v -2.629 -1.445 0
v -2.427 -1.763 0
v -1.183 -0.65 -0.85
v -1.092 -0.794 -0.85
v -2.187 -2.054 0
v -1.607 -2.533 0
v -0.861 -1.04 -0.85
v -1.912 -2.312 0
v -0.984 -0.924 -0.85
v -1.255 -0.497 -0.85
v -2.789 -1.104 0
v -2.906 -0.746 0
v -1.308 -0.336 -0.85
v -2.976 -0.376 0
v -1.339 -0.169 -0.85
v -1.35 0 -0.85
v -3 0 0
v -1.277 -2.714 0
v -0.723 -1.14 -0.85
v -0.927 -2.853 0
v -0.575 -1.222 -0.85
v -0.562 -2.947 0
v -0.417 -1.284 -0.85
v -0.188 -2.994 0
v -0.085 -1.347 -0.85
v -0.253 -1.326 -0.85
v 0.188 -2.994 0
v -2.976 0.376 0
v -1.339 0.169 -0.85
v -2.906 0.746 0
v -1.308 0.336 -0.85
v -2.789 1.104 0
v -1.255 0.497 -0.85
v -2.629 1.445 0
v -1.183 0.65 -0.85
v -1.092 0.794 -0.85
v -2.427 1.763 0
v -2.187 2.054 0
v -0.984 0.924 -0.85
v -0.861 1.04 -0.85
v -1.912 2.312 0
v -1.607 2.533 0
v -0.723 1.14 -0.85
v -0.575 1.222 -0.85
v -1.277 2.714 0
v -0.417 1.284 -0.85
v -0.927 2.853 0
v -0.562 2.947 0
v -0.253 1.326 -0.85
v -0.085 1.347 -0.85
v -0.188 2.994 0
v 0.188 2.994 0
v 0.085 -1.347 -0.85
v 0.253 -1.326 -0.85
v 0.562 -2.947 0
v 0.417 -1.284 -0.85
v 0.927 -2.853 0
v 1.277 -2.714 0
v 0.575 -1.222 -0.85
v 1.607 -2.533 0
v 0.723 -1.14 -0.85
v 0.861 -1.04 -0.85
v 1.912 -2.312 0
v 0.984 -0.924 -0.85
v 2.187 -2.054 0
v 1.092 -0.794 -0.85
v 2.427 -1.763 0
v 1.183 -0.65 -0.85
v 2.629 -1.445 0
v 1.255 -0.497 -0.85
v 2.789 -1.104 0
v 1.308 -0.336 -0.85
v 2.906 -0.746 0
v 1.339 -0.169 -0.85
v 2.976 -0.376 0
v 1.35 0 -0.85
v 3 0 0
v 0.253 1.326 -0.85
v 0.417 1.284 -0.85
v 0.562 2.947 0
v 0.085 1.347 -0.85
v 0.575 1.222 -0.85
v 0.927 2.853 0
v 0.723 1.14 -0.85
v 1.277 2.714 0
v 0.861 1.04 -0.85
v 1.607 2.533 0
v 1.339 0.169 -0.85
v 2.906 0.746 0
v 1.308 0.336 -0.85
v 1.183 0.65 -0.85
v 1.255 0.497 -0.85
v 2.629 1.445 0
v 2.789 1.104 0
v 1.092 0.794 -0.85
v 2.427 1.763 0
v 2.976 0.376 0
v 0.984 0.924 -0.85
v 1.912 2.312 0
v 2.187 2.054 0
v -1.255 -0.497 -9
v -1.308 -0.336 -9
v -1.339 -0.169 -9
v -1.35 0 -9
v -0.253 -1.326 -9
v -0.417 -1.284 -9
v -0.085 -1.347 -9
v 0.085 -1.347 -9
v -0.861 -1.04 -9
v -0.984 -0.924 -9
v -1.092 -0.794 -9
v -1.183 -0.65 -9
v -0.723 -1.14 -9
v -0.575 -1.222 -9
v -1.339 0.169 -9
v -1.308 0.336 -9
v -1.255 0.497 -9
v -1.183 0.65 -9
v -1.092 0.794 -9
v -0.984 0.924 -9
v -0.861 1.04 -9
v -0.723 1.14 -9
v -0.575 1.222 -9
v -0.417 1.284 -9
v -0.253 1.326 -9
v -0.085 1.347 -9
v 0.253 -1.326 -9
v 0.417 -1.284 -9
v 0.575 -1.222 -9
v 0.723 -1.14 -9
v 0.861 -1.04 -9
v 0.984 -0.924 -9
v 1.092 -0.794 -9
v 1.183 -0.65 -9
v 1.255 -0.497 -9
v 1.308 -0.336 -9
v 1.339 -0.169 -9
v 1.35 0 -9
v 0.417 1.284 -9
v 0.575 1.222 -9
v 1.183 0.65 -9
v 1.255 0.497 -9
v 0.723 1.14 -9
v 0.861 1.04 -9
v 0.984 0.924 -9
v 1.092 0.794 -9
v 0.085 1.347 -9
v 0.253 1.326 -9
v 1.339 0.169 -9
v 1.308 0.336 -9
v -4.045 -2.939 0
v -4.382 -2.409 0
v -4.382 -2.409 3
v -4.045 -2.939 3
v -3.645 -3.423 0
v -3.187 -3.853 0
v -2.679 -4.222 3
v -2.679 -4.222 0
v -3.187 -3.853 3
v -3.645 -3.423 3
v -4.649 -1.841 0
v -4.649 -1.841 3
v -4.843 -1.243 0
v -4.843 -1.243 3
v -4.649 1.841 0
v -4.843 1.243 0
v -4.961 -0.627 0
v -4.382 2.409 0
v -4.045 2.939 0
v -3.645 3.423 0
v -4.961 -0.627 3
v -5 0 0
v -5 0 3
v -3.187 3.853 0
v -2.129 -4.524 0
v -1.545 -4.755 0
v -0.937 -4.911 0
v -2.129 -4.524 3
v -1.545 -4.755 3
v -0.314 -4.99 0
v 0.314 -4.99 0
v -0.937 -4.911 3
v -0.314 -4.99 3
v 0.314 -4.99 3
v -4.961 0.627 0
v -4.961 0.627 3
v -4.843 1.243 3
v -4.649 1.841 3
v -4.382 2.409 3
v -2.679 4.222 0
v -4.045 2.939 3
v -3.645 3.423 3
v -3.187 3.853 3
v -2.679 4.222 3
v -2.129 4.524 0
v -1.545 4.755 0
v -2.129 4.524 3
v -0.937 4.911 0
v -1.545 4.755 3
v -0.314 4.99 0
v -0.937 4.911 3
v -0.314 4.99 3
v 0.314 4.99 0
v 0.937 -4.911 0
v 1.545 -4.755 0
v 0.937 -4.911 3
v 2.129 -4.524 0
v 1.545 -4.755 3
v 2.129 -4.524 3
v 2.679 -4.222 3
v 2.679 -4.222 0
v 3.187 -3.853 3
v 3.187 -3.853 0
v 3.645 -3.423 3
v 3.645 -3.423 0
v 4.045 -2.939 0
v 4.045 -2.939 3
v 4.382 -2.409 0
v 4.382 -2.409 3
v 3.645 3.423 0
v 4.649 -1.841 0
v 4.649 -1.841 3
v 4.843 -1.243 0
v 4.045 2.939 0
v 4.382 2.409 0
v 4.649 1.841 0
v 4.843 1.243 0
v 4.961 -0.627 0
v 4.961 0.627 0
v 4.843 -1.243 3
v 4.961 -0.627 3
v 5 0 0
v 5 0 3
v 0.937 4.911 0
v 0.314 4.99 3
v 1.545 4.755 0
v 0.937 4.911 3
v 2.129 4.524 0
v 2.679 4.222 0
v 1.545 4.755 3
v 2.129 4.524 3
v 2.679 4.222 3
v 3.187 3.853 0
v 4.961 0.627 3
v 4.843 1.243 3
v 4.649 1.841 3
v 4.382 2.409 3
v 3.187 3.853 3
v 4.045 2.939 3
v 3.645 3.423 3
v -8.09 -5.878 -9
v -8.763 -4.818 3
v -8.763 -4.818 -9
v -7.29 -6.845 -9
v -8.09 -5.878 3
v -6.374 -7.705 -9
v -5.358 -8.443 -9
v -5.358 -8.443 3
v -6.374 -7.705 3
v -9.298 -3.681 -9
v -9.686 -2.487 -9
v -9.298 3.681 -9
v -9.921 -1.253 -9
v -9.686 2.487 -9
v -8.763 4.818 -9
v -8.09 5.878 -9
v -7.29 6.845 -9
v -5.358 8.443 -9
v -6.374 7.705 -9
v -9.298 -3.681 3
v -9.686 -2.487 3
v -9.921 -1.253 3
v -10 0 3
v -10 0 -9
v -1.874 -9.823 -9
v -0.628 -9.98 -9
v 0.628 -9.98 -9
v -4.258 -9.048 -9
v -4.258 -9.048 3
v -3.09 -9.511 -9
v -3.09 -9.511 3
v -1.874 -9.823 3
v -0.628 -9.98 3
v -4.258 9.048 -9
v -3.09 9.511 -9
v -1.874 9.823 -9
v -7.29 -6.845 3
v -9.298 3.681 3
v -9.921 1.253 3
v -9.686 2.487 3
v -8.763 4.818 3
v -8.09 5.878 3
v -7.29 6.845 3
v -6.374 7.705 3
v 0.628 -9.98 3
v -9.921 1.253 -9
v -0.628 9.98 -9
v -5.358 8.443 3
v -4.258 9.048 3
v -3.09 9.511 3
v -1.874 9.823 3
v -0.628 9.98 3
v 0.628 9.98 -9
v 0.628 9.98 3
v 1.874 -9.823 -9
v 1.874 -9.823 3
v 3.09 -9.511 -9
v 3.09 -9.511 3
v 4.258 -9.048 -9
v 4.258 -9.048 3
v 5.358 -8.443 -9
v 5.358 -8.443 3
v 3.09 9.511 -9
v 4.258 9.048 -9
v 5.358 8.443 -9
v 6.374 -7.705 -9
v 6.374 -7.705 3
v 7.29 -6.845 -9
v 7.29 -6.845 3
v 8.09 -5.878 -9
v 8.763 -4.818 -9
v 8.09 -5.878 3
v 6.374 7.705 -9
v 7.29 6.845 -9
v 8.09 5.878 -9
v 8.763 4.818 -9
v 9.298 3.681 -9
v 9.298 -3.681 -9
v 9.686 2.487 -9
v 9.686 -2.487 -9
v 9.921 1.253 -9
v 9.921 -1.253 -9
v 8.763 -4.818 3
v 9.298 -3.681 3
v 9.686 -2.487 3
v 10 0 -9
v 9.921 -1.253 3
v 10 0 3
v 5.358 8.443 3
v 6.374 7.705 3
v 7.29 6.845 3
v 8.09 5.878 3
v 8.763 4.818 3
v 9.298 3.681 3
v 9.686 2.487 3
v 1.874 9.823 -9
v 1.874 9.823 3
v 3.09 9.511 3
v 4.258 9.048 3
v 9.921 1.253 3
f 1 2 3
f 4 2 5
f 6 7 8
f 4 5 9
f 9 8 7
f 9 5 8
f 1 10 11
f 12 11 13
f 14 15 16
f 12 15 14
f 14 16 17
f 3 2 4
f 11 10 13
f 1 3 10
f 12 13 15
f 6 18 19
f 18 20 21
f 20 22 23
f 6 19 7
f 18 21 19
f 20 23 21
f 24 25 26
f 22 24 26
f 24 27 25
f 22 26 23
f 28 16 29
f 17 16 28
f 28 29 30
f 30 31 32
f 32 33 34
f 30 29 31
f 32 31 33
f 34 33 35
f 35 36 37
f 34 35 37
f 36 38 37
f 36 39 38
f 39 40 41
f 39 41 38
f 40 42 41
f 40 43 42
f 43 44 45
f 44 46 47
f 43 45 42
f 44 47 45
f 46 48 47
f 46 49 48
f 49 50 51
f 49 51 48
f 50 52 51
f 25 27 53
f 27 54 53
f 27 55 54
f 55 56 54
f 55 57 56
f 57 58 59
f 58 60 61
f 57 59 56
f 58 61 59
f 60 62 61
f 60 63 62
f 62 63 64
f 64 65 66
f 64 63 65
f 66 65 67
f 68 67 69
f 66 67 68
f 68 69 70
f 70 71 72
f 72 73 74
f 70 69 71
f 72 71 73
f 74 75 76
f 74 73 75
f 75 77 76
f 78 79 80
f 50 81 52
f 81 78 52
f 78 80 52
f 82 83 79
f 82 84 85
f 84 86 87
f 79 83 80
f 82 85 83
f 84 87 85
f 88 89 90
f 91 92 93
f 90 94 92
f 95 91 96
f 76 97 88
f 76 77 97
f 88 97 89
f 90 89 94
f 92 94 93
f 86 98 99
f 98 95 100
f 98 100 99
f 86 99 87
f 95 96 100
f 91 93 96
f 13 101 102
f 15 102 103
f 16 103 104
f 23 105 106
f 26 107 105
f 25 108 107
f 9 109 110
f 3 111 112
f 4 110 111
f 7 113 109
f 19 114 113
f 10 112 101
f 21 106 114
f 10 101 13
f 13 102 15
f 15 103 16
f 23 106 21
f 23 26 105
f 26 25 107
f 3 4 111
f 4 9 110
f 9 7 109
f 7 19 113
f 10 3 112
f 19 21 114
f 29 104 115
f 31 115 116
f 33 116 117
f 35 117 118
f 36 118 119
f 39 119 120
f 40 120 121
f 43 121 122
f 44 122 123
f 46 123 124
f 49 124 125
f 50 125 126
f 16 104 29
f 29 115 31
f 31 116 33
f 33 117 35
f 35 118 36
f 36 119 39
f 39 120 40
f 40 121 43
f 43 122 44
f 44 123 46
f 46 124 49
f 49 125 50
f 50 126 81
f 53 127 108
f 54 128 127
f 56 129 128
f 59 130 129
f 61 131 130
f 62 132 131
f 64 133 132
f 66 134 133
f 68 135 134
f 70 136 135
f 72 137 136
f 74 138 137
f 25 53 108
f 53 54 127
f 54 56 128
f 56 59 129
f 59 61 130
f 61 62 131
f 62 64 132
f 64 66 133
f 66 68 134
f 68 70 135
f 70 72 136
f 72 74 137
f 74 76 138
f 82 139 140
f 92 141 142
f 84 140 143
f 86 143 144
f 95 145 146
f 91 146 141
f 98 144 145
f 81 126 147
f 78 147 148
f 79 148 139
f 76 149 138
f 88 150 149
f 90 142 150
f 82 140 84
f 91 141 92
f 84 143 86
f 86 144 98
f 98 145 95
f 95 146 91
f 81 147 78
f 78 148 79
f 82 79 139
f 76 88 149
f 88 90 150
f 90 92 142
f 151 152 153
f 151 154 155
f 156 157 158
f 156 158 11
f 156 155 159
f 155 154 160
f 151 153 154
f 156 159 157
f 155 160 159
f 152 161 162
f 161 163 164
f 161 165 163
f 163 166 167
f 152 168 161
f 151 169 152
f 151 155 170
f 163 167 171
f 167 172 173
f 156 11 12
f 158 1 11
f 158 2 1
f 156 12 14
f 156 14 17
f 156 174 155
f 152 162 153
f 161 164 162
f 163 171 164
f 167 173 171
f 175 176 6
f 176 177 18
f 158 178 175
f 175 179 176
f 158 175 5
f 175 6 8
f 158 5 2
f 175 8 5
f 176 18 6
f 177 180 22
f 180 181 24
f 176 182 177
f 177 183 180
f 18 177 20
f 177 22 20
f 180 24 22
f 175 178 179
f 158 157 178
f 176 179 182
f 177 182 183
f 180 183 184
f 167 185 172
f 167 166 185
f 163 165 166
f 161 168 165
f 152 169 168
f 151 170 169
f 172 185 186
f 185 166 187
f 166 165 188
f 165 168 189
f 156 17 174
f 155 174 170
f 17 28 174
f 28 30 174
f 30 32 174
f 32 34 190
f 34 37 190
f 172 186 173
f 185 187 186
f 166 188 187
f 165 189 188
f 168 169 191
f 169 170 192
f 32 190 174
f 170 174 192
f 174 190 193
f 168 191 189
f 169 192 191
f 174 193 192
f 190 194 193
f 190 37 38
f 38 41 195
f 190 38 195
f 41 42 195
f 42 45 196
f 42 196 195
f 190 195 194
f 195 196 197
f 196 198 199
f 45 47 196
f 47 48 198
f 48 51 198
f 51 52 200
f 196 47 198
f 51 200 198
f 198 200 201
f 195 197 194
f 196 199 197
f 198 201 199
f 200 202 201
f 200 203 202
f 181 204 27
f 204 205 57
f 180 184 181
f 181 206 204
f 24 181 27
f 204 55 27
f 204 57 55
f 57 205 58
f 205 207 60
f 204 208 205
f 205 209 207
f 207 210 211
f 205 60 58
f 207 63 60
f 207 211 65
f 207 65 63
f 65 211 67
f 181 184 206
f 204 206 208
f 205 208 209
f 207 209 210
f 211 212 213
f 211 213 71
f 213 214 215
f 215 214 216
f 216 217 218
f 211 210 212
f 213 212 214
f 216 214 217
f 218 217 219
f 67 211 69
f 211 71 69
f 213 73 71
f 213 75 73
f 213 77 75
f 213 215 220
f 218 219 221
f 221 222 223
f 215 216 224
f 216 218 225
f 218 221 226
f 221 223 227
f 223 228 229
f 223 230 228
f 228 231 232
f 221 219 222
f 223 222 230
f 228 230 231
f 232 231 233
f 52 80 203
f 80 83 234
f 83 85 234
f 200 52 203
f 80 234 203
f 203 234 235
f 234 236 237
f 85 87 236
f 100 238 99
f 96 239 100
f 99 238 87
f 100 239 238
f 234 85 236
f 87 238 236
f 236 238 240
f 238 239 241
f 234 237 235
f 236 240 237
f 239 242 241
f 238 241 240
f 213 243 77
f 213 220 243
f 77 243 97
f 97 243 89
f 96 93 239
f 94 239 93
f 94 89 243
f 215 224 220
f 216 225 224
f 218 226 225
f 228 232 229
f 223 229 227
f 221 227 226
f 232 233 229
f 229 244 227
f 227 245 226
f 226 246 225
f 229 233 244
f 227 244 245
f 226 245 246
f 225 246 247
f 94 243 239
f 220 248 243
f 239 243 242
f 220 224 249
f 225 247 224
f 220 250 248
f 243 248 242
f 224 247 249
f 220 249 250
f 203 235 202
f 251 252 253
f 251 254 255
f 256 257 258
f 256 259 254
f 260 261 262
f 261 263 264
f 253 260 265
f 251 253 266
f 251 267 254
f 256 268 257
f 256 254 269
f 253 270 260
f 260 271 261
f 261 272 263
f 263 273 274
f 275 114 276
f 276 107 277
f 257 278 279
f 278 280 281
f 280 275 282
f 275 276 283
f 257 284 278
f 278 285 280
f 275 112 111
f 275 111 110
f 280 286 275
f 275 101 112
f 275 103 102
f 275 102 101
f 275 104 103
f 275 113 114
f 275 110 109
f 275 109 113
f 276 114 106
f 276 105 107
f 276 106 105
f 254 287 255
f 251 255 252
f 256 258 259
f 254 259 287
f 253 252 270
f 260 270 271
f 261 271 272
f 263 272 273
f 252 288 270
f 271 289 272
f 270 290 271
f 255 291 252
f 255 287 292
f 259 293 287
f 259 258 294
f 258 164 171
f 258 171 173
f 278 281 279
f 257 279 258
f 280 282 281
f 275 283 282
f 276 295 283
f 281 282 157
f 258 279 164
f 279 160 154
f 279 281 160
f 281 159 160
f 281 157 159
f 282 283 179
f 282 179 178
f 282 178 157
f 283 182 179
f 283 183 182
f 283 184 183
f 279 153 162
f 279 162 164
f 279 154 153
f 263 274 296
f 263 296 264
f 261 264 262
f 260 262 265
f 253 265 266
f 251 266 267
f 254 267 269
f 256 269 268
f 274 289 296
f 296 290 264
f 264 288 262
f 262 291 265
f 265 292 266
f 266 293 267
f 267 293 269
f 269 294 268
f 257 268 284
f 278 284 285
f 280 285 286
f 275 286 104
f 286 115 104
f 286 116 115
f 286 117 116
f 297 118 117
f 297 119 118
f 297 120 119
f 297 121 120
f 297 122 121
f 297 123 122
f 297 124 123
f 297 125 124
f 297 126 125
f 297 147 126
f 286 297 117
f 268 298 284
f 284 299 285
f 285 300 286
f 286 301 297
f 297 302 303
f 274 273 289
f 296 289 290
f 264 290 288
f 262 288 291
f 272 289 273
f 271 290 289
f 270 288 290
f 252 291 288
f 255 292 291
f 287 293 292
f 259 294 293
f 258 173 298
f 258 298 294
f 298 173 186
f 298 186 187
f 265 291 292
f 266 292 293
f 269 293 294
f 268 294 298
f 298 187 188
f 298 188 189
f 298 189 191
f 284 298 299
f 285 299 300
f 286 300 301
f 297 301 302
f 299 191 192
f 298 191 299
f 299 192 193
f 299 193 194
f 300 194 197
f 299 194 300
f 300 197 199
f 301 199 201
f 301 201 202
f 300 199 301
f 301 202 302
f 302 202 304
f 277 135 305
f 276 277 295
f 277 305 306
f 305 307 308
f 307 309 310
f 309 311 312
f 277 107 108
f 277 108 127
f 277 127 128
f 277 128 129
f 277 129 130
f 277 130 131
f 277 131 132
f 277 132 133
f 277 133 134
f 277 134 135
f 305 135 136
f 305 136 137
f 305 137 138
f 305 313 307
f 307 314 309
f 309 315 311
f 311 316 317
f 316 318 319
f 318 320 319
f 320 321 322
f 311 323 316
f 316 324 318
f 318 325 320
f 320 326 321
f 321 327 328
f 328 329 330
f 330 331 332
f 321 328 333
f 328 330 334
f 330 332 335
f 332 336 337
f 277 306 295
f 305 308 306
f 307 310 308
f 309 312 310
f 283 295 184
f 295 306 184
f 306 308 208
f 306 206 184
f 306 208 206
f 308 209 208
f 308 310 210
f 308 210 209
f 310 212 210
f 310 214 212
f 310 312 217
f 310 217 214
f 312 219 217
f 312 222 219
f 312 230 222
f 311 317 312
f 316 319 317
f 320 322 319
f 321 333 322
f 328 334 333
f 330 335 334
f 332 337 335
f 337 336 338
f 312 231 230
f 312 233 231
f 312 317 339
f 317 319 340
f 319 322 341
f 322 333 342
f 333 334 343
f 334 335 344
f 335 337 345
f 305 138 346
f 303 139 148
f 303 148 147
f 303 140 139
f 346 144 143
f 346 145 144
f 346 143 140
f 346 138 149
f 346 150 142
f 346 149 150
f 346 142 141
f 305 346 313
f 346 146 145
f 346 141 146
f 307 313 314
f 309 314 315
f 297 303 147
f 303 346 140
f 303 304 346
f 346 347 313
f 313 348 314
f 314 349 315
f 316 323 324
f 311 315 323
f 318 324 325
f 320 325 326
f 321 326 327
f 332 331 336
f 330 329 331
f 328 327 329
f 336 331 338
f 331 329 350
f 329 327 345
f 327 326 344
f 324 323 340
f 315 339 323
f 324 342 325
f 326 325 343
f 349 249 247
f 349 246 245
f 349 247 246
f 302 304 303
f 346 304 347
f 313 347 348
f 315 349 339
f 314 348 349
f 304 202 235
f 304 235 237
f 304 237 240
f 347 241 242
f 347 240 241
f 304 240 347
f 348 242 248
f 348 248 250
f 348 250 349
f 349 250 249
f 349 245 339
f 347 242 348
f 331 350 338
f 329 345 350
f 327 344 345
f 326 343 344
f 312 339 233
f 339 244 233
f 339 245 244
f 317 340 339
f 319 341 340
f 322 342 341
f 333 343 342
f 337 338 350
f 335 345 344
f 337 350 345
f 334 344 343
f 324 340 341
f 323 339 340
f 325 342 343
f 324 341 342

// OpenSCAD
$fn = 50;


difference() {
	union() {
		translate(v = [0, 0, -9.0000000000]) {
			cylinder(h = 12, r = 10.0000000000);
		}
	}
	union() {
		translate(v = [0, 0, 0]) {
			rotate(a = [0, 0, 0]) {
				difference() {
					union() {
						translate(v = [0, 0, -12.0000000000]) {
							cylinder(h = 12, r = 1.0000000000);
						}
						translate(v = [0, 0, -0.8500000000]) {
							cylinder(h = 0.8500000000, r1 = 1.3500000000, r2 = 3.0000000000);
						}
						translate(v = [0, 0, -12.0000000000]) {
							cylinder(h = 12, r = 1.3500000000);
						}
						translate(v = [0, 0, -12.0000000000]) {
							cylinder(h = 12, r = 1.0000000000);
						}
					}
					union();
				}
			}
		}
		#cylinder(h = 3, r = 5.0000000000);
	}
}
